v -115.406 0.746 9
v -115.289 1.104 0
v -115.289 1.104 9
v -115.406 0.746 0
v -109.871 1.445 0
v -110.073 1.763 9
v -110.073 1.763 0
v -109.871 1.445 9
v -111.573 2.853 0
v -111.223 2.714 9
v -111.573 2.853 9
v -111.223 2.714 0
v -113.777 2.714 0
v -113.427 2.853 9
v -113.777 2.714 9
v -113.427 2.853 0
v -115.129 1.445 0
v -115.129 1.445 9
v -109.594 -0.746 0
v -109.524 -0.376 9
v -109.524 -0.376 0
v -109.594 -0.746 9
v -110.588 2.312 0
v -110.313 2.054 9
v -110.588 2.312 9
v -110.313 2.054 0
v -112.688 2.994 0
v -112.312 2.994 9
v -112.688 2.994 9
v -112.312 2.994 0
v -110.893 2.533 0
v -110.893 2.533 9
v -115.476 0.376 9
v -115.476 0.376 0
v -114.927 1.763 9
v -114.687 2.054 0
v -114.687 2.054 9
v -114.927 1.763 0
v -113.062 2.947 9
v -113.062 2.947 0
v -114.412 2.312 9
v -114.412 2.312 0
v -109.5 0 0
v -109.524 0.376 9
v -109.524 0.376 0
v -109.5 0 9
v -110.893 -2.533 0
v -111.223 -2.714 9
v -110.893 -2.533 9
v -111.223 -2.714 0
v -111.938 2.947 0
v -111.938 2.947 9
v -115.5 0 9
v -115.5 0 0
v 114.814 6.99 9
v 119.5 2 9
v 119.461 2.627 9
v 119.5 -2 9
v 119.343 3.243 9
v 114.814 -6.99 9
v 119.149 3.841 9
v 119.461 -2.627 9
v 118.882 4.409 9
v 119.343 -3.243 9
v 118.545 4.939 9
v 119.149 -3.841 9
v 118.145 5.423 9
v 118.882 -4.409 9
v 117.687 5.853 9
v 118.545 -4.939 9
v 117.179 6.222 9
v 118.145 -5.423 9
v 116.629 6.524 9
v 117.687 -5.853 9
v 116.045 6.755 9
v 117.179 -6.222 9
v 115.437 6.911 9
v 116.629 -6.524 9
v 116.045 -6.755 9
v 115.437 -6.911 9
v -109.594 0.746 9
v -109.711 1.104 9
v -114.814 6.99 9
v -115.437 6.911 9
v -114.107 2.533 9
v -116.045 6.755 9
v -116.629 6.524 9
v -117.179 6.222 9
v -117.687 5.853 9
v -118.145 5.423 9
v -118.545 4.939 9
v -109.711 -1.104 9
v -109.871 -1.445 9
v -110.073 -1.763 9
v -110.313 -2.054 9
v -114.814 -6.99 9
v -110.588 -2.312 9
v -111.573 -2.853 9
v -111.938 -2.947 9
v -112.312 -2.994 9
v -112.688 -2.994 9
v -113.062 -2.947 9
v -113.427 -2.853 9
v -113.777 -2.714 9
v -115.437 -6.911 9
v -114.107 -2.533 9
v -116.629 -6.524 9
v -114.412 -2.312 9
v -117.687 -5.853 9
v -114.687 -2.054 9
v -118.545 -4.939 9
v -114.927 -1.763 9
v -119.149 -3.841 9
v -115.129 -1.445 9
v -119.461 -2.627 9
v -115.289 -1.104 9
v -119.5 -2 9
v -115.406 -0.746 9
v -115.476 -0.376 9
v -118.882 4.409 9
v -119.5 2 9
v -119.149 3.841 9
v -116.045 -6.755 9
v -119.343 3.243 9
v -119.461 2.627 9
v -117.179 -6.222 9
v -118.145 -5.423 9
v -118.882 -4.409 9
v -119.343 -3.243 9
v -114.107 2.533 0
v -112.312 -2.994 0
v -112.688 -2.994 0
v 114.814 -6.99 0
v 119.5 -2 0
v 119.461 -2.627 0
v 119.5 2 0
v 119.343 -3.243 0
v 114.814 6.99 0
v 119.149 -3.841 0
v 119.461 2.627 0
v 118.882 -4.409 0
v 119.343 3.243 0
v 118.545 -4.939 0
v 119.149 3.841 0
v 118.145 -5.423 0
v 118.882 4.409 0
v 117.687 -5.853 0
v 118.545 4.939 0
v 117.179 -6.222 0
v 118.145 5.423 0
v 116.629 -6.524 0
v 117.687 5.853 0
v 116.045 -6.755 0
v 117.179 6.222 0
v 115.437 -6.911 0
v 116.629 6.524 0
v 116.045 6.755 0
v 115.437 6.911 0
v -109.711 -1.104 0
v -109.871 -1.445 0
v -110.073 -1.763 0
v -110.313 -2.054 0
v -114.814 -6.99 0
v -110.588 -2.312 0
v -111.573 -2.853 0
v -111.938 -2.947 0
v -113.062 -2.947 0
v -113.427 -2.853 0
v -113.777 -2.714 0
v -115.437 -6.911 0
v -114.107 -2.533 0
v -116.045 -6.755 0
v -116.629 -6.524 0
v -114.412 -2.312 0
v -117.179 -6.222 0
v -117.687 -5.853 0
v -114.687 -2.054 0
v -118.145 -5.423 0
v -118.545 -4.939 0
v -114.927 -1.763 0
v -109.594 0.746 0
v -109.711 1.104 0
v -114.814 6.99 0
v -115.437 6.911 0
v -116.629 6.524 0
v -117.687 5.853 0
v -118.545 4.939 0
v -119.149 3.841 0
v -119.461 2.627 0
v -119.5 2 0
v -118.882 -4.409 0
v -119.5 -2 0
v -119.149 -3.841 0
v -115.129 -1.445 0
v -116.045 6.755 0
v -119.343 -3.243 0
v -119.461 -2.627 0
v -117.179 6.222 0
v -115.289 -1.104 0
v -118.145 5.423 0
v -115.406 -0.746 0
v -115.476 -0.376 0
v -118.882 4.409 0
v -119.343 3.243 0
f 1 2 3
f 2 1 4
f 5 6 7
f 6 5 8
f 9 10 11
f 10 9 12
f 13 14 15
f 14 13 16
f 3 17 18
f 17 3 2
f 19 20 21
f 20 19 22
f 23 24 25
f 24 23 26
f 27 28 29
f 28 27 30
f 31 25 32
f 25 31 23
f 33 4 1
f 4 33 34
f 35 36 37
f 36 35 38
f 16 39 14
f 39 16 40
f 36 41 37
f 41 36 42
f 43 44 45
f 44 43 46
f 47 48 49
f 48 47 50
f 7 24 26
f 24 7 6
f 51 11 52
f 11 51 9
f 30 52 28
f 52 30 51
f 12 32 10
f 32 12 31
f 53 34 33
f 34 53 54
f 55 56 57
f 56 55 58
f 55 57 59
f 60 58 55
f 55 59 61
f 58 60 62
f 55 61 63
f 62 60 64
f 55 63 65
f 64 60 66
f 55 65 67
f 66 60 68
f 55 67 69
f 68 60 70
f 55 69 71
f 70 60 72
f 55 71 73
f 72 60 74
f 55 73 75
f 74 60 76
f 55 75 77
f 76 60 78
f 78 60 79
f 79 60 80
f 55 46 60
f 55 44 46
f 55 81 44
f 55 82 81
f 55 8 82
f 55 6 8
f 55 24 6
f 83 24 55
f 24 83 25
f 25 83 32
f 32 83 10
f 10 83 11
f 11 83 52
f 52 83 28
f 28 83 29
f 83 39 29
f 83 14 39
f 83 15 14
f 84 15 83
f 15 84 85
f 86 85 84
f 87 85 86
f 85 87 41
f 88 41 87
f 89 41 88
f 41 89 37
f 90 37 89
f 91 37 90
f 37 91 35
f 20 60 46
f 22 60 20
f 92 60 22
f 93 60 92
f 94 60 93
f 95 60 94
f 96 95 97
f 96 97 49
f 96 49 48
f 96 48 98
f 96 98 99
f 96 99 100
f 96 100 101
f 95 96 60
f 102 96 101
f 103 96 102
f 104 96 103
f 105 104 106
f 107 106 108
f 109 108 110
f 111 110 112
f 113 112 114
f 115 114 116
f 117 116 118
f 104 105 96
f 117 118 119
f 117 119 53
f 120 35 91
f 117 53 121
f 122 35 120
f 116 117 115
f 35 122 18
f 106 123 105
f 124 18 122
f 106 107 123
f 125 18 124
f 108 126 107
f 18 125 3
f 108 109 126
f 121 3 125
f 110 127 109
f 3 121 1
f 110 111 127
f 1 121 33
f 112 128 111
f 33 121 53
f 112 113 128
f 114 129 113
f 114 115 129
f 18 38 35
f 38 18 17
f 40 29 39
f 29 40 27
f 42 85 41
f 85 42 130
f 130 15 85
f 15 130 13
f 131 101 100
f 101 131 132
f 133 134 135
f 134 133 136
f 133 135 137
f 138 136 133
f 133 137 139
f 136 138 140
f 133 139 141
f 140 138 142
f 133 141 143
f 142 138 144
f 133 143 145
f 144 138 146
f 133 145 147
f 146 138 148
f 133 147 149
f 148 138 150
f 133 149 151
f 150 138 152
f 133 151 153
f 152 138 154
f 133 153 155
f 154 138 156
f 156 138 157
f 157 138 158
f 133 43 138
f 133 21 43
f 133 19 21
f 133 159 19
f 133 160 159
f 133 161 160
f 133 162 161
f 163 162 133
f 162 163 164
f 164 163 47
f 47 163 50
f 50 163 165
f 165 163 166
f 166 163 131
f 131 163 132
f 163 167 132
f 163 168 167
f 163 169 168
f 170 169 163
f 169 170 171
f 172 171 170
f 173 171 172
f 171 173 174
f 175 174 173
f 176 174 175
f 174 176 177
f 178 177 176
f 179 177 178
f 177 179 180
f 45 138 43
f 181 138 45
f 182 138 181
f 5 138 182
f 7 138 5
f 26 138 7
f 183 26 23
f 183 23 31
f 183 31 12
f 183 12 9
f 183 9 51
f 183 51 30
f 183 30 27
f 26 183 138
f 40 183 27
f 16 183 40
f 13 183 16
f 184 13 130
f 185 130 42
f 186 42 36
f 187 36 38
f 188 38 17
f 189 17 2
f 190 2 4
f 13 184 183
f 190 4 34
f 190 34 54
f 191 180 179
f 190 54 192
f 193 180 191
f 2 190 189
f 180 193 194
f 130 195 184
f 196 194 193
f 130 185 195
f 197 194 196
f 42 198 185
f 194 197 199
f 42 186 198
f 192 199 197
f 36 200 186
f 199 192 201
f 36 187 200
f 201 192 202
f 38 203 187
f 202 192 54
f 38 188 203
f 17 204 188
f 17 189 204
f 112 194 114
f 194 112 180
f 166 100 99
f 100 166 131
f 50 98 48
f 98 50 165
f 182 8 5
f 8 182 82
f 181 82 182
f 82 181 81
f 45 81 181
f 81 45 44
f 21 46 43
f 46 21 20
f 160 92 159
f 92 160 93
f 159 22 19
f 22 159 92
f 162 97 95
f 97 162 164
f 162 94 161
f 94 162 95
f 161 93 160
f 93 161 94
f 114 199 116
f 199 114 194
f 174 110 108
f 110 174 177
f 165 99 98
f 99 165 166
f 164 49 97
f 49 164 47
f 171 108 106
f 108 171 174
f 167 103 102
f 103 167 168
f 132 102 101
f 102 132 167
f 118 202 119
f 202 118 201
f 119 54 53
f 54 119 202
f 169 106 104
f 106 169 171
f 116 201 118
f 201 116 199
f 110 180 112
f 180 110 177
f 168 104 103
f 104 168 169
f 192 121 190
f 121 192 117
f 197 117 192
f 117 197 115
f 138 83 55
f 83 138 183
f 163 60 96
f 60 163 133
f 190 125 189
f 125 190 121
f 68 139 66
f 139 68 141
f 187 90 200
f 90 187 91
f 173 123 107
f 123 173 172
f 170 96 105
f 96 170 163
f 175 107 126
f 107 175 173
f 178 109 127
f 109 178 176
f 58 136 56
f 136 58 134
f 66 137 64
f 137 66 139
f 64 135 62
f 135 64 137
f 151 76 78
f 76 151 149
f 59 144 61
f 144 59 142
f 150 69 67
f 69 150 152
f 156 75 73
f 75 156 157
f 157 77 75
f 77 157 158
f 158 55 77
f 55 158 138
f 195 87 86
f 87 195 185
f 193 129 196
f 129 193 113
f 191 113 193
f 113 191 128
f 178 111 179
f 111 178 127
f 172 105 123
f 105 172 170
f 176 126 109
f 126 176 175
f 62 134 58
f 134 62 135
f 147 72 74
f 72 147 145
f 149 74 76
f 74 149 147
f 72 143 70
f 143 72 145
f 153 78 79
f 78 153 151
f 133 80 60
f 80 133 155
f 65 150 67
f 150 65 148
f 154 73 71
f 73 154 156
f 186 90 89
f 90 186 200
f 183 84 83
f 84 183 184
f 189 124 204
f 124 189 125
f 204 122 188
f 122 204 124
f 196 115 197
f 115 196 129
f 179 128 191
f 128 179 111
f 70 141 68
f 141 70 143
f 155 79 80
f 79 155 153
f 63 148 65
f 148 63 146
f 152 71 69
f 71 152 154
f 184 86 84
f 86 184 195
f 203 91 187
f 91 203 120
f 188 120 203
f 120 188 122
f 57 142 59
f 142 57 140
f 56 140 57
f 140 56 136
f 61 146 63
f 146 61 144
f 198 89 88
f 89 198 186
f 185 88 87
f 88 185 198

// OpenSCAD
$fn = 50;


difference() {
	union() {
		hull() {
			translate(v = [-114.5000000000, 2.0000000000, 0]) {
				cylinder(h = 9, r = 5);
			}
			translate(v = [114.5000000000, 2.0000000000, 0]) {
				cylinder(h = 9, r = 5);
			}
			translate(v = [-114.5000000000, -2.0000000000, 0]) {
				cylinder(h = 9, r = 5);
			}
			translate(v = [114.5000000000, -2.0000000000, 0]) {
				cylinder(h = 9, r = 5);
			}
		}
	}
	union() {
		translate(v = [-112.5000000000, 0.0000000000, 0]) {
			cylinder(h = 9, r = 3.0000000000);
		}
		translate(v = [-112.5000000000, 0.0000000000, 0]) {
			cylinder(h = 9, r = 1.5000000000);
		}
		translate(v = [-112.5000000000, 0.0000000000, 0]) {
			cylinder(h = 9, r = 1.5000000000);
		}
		translate(v = [-112.5000000000, 0.0000000000, 0]) {
			cylinder(h = 9, r = 1.5000000000);
		}
	}
}
